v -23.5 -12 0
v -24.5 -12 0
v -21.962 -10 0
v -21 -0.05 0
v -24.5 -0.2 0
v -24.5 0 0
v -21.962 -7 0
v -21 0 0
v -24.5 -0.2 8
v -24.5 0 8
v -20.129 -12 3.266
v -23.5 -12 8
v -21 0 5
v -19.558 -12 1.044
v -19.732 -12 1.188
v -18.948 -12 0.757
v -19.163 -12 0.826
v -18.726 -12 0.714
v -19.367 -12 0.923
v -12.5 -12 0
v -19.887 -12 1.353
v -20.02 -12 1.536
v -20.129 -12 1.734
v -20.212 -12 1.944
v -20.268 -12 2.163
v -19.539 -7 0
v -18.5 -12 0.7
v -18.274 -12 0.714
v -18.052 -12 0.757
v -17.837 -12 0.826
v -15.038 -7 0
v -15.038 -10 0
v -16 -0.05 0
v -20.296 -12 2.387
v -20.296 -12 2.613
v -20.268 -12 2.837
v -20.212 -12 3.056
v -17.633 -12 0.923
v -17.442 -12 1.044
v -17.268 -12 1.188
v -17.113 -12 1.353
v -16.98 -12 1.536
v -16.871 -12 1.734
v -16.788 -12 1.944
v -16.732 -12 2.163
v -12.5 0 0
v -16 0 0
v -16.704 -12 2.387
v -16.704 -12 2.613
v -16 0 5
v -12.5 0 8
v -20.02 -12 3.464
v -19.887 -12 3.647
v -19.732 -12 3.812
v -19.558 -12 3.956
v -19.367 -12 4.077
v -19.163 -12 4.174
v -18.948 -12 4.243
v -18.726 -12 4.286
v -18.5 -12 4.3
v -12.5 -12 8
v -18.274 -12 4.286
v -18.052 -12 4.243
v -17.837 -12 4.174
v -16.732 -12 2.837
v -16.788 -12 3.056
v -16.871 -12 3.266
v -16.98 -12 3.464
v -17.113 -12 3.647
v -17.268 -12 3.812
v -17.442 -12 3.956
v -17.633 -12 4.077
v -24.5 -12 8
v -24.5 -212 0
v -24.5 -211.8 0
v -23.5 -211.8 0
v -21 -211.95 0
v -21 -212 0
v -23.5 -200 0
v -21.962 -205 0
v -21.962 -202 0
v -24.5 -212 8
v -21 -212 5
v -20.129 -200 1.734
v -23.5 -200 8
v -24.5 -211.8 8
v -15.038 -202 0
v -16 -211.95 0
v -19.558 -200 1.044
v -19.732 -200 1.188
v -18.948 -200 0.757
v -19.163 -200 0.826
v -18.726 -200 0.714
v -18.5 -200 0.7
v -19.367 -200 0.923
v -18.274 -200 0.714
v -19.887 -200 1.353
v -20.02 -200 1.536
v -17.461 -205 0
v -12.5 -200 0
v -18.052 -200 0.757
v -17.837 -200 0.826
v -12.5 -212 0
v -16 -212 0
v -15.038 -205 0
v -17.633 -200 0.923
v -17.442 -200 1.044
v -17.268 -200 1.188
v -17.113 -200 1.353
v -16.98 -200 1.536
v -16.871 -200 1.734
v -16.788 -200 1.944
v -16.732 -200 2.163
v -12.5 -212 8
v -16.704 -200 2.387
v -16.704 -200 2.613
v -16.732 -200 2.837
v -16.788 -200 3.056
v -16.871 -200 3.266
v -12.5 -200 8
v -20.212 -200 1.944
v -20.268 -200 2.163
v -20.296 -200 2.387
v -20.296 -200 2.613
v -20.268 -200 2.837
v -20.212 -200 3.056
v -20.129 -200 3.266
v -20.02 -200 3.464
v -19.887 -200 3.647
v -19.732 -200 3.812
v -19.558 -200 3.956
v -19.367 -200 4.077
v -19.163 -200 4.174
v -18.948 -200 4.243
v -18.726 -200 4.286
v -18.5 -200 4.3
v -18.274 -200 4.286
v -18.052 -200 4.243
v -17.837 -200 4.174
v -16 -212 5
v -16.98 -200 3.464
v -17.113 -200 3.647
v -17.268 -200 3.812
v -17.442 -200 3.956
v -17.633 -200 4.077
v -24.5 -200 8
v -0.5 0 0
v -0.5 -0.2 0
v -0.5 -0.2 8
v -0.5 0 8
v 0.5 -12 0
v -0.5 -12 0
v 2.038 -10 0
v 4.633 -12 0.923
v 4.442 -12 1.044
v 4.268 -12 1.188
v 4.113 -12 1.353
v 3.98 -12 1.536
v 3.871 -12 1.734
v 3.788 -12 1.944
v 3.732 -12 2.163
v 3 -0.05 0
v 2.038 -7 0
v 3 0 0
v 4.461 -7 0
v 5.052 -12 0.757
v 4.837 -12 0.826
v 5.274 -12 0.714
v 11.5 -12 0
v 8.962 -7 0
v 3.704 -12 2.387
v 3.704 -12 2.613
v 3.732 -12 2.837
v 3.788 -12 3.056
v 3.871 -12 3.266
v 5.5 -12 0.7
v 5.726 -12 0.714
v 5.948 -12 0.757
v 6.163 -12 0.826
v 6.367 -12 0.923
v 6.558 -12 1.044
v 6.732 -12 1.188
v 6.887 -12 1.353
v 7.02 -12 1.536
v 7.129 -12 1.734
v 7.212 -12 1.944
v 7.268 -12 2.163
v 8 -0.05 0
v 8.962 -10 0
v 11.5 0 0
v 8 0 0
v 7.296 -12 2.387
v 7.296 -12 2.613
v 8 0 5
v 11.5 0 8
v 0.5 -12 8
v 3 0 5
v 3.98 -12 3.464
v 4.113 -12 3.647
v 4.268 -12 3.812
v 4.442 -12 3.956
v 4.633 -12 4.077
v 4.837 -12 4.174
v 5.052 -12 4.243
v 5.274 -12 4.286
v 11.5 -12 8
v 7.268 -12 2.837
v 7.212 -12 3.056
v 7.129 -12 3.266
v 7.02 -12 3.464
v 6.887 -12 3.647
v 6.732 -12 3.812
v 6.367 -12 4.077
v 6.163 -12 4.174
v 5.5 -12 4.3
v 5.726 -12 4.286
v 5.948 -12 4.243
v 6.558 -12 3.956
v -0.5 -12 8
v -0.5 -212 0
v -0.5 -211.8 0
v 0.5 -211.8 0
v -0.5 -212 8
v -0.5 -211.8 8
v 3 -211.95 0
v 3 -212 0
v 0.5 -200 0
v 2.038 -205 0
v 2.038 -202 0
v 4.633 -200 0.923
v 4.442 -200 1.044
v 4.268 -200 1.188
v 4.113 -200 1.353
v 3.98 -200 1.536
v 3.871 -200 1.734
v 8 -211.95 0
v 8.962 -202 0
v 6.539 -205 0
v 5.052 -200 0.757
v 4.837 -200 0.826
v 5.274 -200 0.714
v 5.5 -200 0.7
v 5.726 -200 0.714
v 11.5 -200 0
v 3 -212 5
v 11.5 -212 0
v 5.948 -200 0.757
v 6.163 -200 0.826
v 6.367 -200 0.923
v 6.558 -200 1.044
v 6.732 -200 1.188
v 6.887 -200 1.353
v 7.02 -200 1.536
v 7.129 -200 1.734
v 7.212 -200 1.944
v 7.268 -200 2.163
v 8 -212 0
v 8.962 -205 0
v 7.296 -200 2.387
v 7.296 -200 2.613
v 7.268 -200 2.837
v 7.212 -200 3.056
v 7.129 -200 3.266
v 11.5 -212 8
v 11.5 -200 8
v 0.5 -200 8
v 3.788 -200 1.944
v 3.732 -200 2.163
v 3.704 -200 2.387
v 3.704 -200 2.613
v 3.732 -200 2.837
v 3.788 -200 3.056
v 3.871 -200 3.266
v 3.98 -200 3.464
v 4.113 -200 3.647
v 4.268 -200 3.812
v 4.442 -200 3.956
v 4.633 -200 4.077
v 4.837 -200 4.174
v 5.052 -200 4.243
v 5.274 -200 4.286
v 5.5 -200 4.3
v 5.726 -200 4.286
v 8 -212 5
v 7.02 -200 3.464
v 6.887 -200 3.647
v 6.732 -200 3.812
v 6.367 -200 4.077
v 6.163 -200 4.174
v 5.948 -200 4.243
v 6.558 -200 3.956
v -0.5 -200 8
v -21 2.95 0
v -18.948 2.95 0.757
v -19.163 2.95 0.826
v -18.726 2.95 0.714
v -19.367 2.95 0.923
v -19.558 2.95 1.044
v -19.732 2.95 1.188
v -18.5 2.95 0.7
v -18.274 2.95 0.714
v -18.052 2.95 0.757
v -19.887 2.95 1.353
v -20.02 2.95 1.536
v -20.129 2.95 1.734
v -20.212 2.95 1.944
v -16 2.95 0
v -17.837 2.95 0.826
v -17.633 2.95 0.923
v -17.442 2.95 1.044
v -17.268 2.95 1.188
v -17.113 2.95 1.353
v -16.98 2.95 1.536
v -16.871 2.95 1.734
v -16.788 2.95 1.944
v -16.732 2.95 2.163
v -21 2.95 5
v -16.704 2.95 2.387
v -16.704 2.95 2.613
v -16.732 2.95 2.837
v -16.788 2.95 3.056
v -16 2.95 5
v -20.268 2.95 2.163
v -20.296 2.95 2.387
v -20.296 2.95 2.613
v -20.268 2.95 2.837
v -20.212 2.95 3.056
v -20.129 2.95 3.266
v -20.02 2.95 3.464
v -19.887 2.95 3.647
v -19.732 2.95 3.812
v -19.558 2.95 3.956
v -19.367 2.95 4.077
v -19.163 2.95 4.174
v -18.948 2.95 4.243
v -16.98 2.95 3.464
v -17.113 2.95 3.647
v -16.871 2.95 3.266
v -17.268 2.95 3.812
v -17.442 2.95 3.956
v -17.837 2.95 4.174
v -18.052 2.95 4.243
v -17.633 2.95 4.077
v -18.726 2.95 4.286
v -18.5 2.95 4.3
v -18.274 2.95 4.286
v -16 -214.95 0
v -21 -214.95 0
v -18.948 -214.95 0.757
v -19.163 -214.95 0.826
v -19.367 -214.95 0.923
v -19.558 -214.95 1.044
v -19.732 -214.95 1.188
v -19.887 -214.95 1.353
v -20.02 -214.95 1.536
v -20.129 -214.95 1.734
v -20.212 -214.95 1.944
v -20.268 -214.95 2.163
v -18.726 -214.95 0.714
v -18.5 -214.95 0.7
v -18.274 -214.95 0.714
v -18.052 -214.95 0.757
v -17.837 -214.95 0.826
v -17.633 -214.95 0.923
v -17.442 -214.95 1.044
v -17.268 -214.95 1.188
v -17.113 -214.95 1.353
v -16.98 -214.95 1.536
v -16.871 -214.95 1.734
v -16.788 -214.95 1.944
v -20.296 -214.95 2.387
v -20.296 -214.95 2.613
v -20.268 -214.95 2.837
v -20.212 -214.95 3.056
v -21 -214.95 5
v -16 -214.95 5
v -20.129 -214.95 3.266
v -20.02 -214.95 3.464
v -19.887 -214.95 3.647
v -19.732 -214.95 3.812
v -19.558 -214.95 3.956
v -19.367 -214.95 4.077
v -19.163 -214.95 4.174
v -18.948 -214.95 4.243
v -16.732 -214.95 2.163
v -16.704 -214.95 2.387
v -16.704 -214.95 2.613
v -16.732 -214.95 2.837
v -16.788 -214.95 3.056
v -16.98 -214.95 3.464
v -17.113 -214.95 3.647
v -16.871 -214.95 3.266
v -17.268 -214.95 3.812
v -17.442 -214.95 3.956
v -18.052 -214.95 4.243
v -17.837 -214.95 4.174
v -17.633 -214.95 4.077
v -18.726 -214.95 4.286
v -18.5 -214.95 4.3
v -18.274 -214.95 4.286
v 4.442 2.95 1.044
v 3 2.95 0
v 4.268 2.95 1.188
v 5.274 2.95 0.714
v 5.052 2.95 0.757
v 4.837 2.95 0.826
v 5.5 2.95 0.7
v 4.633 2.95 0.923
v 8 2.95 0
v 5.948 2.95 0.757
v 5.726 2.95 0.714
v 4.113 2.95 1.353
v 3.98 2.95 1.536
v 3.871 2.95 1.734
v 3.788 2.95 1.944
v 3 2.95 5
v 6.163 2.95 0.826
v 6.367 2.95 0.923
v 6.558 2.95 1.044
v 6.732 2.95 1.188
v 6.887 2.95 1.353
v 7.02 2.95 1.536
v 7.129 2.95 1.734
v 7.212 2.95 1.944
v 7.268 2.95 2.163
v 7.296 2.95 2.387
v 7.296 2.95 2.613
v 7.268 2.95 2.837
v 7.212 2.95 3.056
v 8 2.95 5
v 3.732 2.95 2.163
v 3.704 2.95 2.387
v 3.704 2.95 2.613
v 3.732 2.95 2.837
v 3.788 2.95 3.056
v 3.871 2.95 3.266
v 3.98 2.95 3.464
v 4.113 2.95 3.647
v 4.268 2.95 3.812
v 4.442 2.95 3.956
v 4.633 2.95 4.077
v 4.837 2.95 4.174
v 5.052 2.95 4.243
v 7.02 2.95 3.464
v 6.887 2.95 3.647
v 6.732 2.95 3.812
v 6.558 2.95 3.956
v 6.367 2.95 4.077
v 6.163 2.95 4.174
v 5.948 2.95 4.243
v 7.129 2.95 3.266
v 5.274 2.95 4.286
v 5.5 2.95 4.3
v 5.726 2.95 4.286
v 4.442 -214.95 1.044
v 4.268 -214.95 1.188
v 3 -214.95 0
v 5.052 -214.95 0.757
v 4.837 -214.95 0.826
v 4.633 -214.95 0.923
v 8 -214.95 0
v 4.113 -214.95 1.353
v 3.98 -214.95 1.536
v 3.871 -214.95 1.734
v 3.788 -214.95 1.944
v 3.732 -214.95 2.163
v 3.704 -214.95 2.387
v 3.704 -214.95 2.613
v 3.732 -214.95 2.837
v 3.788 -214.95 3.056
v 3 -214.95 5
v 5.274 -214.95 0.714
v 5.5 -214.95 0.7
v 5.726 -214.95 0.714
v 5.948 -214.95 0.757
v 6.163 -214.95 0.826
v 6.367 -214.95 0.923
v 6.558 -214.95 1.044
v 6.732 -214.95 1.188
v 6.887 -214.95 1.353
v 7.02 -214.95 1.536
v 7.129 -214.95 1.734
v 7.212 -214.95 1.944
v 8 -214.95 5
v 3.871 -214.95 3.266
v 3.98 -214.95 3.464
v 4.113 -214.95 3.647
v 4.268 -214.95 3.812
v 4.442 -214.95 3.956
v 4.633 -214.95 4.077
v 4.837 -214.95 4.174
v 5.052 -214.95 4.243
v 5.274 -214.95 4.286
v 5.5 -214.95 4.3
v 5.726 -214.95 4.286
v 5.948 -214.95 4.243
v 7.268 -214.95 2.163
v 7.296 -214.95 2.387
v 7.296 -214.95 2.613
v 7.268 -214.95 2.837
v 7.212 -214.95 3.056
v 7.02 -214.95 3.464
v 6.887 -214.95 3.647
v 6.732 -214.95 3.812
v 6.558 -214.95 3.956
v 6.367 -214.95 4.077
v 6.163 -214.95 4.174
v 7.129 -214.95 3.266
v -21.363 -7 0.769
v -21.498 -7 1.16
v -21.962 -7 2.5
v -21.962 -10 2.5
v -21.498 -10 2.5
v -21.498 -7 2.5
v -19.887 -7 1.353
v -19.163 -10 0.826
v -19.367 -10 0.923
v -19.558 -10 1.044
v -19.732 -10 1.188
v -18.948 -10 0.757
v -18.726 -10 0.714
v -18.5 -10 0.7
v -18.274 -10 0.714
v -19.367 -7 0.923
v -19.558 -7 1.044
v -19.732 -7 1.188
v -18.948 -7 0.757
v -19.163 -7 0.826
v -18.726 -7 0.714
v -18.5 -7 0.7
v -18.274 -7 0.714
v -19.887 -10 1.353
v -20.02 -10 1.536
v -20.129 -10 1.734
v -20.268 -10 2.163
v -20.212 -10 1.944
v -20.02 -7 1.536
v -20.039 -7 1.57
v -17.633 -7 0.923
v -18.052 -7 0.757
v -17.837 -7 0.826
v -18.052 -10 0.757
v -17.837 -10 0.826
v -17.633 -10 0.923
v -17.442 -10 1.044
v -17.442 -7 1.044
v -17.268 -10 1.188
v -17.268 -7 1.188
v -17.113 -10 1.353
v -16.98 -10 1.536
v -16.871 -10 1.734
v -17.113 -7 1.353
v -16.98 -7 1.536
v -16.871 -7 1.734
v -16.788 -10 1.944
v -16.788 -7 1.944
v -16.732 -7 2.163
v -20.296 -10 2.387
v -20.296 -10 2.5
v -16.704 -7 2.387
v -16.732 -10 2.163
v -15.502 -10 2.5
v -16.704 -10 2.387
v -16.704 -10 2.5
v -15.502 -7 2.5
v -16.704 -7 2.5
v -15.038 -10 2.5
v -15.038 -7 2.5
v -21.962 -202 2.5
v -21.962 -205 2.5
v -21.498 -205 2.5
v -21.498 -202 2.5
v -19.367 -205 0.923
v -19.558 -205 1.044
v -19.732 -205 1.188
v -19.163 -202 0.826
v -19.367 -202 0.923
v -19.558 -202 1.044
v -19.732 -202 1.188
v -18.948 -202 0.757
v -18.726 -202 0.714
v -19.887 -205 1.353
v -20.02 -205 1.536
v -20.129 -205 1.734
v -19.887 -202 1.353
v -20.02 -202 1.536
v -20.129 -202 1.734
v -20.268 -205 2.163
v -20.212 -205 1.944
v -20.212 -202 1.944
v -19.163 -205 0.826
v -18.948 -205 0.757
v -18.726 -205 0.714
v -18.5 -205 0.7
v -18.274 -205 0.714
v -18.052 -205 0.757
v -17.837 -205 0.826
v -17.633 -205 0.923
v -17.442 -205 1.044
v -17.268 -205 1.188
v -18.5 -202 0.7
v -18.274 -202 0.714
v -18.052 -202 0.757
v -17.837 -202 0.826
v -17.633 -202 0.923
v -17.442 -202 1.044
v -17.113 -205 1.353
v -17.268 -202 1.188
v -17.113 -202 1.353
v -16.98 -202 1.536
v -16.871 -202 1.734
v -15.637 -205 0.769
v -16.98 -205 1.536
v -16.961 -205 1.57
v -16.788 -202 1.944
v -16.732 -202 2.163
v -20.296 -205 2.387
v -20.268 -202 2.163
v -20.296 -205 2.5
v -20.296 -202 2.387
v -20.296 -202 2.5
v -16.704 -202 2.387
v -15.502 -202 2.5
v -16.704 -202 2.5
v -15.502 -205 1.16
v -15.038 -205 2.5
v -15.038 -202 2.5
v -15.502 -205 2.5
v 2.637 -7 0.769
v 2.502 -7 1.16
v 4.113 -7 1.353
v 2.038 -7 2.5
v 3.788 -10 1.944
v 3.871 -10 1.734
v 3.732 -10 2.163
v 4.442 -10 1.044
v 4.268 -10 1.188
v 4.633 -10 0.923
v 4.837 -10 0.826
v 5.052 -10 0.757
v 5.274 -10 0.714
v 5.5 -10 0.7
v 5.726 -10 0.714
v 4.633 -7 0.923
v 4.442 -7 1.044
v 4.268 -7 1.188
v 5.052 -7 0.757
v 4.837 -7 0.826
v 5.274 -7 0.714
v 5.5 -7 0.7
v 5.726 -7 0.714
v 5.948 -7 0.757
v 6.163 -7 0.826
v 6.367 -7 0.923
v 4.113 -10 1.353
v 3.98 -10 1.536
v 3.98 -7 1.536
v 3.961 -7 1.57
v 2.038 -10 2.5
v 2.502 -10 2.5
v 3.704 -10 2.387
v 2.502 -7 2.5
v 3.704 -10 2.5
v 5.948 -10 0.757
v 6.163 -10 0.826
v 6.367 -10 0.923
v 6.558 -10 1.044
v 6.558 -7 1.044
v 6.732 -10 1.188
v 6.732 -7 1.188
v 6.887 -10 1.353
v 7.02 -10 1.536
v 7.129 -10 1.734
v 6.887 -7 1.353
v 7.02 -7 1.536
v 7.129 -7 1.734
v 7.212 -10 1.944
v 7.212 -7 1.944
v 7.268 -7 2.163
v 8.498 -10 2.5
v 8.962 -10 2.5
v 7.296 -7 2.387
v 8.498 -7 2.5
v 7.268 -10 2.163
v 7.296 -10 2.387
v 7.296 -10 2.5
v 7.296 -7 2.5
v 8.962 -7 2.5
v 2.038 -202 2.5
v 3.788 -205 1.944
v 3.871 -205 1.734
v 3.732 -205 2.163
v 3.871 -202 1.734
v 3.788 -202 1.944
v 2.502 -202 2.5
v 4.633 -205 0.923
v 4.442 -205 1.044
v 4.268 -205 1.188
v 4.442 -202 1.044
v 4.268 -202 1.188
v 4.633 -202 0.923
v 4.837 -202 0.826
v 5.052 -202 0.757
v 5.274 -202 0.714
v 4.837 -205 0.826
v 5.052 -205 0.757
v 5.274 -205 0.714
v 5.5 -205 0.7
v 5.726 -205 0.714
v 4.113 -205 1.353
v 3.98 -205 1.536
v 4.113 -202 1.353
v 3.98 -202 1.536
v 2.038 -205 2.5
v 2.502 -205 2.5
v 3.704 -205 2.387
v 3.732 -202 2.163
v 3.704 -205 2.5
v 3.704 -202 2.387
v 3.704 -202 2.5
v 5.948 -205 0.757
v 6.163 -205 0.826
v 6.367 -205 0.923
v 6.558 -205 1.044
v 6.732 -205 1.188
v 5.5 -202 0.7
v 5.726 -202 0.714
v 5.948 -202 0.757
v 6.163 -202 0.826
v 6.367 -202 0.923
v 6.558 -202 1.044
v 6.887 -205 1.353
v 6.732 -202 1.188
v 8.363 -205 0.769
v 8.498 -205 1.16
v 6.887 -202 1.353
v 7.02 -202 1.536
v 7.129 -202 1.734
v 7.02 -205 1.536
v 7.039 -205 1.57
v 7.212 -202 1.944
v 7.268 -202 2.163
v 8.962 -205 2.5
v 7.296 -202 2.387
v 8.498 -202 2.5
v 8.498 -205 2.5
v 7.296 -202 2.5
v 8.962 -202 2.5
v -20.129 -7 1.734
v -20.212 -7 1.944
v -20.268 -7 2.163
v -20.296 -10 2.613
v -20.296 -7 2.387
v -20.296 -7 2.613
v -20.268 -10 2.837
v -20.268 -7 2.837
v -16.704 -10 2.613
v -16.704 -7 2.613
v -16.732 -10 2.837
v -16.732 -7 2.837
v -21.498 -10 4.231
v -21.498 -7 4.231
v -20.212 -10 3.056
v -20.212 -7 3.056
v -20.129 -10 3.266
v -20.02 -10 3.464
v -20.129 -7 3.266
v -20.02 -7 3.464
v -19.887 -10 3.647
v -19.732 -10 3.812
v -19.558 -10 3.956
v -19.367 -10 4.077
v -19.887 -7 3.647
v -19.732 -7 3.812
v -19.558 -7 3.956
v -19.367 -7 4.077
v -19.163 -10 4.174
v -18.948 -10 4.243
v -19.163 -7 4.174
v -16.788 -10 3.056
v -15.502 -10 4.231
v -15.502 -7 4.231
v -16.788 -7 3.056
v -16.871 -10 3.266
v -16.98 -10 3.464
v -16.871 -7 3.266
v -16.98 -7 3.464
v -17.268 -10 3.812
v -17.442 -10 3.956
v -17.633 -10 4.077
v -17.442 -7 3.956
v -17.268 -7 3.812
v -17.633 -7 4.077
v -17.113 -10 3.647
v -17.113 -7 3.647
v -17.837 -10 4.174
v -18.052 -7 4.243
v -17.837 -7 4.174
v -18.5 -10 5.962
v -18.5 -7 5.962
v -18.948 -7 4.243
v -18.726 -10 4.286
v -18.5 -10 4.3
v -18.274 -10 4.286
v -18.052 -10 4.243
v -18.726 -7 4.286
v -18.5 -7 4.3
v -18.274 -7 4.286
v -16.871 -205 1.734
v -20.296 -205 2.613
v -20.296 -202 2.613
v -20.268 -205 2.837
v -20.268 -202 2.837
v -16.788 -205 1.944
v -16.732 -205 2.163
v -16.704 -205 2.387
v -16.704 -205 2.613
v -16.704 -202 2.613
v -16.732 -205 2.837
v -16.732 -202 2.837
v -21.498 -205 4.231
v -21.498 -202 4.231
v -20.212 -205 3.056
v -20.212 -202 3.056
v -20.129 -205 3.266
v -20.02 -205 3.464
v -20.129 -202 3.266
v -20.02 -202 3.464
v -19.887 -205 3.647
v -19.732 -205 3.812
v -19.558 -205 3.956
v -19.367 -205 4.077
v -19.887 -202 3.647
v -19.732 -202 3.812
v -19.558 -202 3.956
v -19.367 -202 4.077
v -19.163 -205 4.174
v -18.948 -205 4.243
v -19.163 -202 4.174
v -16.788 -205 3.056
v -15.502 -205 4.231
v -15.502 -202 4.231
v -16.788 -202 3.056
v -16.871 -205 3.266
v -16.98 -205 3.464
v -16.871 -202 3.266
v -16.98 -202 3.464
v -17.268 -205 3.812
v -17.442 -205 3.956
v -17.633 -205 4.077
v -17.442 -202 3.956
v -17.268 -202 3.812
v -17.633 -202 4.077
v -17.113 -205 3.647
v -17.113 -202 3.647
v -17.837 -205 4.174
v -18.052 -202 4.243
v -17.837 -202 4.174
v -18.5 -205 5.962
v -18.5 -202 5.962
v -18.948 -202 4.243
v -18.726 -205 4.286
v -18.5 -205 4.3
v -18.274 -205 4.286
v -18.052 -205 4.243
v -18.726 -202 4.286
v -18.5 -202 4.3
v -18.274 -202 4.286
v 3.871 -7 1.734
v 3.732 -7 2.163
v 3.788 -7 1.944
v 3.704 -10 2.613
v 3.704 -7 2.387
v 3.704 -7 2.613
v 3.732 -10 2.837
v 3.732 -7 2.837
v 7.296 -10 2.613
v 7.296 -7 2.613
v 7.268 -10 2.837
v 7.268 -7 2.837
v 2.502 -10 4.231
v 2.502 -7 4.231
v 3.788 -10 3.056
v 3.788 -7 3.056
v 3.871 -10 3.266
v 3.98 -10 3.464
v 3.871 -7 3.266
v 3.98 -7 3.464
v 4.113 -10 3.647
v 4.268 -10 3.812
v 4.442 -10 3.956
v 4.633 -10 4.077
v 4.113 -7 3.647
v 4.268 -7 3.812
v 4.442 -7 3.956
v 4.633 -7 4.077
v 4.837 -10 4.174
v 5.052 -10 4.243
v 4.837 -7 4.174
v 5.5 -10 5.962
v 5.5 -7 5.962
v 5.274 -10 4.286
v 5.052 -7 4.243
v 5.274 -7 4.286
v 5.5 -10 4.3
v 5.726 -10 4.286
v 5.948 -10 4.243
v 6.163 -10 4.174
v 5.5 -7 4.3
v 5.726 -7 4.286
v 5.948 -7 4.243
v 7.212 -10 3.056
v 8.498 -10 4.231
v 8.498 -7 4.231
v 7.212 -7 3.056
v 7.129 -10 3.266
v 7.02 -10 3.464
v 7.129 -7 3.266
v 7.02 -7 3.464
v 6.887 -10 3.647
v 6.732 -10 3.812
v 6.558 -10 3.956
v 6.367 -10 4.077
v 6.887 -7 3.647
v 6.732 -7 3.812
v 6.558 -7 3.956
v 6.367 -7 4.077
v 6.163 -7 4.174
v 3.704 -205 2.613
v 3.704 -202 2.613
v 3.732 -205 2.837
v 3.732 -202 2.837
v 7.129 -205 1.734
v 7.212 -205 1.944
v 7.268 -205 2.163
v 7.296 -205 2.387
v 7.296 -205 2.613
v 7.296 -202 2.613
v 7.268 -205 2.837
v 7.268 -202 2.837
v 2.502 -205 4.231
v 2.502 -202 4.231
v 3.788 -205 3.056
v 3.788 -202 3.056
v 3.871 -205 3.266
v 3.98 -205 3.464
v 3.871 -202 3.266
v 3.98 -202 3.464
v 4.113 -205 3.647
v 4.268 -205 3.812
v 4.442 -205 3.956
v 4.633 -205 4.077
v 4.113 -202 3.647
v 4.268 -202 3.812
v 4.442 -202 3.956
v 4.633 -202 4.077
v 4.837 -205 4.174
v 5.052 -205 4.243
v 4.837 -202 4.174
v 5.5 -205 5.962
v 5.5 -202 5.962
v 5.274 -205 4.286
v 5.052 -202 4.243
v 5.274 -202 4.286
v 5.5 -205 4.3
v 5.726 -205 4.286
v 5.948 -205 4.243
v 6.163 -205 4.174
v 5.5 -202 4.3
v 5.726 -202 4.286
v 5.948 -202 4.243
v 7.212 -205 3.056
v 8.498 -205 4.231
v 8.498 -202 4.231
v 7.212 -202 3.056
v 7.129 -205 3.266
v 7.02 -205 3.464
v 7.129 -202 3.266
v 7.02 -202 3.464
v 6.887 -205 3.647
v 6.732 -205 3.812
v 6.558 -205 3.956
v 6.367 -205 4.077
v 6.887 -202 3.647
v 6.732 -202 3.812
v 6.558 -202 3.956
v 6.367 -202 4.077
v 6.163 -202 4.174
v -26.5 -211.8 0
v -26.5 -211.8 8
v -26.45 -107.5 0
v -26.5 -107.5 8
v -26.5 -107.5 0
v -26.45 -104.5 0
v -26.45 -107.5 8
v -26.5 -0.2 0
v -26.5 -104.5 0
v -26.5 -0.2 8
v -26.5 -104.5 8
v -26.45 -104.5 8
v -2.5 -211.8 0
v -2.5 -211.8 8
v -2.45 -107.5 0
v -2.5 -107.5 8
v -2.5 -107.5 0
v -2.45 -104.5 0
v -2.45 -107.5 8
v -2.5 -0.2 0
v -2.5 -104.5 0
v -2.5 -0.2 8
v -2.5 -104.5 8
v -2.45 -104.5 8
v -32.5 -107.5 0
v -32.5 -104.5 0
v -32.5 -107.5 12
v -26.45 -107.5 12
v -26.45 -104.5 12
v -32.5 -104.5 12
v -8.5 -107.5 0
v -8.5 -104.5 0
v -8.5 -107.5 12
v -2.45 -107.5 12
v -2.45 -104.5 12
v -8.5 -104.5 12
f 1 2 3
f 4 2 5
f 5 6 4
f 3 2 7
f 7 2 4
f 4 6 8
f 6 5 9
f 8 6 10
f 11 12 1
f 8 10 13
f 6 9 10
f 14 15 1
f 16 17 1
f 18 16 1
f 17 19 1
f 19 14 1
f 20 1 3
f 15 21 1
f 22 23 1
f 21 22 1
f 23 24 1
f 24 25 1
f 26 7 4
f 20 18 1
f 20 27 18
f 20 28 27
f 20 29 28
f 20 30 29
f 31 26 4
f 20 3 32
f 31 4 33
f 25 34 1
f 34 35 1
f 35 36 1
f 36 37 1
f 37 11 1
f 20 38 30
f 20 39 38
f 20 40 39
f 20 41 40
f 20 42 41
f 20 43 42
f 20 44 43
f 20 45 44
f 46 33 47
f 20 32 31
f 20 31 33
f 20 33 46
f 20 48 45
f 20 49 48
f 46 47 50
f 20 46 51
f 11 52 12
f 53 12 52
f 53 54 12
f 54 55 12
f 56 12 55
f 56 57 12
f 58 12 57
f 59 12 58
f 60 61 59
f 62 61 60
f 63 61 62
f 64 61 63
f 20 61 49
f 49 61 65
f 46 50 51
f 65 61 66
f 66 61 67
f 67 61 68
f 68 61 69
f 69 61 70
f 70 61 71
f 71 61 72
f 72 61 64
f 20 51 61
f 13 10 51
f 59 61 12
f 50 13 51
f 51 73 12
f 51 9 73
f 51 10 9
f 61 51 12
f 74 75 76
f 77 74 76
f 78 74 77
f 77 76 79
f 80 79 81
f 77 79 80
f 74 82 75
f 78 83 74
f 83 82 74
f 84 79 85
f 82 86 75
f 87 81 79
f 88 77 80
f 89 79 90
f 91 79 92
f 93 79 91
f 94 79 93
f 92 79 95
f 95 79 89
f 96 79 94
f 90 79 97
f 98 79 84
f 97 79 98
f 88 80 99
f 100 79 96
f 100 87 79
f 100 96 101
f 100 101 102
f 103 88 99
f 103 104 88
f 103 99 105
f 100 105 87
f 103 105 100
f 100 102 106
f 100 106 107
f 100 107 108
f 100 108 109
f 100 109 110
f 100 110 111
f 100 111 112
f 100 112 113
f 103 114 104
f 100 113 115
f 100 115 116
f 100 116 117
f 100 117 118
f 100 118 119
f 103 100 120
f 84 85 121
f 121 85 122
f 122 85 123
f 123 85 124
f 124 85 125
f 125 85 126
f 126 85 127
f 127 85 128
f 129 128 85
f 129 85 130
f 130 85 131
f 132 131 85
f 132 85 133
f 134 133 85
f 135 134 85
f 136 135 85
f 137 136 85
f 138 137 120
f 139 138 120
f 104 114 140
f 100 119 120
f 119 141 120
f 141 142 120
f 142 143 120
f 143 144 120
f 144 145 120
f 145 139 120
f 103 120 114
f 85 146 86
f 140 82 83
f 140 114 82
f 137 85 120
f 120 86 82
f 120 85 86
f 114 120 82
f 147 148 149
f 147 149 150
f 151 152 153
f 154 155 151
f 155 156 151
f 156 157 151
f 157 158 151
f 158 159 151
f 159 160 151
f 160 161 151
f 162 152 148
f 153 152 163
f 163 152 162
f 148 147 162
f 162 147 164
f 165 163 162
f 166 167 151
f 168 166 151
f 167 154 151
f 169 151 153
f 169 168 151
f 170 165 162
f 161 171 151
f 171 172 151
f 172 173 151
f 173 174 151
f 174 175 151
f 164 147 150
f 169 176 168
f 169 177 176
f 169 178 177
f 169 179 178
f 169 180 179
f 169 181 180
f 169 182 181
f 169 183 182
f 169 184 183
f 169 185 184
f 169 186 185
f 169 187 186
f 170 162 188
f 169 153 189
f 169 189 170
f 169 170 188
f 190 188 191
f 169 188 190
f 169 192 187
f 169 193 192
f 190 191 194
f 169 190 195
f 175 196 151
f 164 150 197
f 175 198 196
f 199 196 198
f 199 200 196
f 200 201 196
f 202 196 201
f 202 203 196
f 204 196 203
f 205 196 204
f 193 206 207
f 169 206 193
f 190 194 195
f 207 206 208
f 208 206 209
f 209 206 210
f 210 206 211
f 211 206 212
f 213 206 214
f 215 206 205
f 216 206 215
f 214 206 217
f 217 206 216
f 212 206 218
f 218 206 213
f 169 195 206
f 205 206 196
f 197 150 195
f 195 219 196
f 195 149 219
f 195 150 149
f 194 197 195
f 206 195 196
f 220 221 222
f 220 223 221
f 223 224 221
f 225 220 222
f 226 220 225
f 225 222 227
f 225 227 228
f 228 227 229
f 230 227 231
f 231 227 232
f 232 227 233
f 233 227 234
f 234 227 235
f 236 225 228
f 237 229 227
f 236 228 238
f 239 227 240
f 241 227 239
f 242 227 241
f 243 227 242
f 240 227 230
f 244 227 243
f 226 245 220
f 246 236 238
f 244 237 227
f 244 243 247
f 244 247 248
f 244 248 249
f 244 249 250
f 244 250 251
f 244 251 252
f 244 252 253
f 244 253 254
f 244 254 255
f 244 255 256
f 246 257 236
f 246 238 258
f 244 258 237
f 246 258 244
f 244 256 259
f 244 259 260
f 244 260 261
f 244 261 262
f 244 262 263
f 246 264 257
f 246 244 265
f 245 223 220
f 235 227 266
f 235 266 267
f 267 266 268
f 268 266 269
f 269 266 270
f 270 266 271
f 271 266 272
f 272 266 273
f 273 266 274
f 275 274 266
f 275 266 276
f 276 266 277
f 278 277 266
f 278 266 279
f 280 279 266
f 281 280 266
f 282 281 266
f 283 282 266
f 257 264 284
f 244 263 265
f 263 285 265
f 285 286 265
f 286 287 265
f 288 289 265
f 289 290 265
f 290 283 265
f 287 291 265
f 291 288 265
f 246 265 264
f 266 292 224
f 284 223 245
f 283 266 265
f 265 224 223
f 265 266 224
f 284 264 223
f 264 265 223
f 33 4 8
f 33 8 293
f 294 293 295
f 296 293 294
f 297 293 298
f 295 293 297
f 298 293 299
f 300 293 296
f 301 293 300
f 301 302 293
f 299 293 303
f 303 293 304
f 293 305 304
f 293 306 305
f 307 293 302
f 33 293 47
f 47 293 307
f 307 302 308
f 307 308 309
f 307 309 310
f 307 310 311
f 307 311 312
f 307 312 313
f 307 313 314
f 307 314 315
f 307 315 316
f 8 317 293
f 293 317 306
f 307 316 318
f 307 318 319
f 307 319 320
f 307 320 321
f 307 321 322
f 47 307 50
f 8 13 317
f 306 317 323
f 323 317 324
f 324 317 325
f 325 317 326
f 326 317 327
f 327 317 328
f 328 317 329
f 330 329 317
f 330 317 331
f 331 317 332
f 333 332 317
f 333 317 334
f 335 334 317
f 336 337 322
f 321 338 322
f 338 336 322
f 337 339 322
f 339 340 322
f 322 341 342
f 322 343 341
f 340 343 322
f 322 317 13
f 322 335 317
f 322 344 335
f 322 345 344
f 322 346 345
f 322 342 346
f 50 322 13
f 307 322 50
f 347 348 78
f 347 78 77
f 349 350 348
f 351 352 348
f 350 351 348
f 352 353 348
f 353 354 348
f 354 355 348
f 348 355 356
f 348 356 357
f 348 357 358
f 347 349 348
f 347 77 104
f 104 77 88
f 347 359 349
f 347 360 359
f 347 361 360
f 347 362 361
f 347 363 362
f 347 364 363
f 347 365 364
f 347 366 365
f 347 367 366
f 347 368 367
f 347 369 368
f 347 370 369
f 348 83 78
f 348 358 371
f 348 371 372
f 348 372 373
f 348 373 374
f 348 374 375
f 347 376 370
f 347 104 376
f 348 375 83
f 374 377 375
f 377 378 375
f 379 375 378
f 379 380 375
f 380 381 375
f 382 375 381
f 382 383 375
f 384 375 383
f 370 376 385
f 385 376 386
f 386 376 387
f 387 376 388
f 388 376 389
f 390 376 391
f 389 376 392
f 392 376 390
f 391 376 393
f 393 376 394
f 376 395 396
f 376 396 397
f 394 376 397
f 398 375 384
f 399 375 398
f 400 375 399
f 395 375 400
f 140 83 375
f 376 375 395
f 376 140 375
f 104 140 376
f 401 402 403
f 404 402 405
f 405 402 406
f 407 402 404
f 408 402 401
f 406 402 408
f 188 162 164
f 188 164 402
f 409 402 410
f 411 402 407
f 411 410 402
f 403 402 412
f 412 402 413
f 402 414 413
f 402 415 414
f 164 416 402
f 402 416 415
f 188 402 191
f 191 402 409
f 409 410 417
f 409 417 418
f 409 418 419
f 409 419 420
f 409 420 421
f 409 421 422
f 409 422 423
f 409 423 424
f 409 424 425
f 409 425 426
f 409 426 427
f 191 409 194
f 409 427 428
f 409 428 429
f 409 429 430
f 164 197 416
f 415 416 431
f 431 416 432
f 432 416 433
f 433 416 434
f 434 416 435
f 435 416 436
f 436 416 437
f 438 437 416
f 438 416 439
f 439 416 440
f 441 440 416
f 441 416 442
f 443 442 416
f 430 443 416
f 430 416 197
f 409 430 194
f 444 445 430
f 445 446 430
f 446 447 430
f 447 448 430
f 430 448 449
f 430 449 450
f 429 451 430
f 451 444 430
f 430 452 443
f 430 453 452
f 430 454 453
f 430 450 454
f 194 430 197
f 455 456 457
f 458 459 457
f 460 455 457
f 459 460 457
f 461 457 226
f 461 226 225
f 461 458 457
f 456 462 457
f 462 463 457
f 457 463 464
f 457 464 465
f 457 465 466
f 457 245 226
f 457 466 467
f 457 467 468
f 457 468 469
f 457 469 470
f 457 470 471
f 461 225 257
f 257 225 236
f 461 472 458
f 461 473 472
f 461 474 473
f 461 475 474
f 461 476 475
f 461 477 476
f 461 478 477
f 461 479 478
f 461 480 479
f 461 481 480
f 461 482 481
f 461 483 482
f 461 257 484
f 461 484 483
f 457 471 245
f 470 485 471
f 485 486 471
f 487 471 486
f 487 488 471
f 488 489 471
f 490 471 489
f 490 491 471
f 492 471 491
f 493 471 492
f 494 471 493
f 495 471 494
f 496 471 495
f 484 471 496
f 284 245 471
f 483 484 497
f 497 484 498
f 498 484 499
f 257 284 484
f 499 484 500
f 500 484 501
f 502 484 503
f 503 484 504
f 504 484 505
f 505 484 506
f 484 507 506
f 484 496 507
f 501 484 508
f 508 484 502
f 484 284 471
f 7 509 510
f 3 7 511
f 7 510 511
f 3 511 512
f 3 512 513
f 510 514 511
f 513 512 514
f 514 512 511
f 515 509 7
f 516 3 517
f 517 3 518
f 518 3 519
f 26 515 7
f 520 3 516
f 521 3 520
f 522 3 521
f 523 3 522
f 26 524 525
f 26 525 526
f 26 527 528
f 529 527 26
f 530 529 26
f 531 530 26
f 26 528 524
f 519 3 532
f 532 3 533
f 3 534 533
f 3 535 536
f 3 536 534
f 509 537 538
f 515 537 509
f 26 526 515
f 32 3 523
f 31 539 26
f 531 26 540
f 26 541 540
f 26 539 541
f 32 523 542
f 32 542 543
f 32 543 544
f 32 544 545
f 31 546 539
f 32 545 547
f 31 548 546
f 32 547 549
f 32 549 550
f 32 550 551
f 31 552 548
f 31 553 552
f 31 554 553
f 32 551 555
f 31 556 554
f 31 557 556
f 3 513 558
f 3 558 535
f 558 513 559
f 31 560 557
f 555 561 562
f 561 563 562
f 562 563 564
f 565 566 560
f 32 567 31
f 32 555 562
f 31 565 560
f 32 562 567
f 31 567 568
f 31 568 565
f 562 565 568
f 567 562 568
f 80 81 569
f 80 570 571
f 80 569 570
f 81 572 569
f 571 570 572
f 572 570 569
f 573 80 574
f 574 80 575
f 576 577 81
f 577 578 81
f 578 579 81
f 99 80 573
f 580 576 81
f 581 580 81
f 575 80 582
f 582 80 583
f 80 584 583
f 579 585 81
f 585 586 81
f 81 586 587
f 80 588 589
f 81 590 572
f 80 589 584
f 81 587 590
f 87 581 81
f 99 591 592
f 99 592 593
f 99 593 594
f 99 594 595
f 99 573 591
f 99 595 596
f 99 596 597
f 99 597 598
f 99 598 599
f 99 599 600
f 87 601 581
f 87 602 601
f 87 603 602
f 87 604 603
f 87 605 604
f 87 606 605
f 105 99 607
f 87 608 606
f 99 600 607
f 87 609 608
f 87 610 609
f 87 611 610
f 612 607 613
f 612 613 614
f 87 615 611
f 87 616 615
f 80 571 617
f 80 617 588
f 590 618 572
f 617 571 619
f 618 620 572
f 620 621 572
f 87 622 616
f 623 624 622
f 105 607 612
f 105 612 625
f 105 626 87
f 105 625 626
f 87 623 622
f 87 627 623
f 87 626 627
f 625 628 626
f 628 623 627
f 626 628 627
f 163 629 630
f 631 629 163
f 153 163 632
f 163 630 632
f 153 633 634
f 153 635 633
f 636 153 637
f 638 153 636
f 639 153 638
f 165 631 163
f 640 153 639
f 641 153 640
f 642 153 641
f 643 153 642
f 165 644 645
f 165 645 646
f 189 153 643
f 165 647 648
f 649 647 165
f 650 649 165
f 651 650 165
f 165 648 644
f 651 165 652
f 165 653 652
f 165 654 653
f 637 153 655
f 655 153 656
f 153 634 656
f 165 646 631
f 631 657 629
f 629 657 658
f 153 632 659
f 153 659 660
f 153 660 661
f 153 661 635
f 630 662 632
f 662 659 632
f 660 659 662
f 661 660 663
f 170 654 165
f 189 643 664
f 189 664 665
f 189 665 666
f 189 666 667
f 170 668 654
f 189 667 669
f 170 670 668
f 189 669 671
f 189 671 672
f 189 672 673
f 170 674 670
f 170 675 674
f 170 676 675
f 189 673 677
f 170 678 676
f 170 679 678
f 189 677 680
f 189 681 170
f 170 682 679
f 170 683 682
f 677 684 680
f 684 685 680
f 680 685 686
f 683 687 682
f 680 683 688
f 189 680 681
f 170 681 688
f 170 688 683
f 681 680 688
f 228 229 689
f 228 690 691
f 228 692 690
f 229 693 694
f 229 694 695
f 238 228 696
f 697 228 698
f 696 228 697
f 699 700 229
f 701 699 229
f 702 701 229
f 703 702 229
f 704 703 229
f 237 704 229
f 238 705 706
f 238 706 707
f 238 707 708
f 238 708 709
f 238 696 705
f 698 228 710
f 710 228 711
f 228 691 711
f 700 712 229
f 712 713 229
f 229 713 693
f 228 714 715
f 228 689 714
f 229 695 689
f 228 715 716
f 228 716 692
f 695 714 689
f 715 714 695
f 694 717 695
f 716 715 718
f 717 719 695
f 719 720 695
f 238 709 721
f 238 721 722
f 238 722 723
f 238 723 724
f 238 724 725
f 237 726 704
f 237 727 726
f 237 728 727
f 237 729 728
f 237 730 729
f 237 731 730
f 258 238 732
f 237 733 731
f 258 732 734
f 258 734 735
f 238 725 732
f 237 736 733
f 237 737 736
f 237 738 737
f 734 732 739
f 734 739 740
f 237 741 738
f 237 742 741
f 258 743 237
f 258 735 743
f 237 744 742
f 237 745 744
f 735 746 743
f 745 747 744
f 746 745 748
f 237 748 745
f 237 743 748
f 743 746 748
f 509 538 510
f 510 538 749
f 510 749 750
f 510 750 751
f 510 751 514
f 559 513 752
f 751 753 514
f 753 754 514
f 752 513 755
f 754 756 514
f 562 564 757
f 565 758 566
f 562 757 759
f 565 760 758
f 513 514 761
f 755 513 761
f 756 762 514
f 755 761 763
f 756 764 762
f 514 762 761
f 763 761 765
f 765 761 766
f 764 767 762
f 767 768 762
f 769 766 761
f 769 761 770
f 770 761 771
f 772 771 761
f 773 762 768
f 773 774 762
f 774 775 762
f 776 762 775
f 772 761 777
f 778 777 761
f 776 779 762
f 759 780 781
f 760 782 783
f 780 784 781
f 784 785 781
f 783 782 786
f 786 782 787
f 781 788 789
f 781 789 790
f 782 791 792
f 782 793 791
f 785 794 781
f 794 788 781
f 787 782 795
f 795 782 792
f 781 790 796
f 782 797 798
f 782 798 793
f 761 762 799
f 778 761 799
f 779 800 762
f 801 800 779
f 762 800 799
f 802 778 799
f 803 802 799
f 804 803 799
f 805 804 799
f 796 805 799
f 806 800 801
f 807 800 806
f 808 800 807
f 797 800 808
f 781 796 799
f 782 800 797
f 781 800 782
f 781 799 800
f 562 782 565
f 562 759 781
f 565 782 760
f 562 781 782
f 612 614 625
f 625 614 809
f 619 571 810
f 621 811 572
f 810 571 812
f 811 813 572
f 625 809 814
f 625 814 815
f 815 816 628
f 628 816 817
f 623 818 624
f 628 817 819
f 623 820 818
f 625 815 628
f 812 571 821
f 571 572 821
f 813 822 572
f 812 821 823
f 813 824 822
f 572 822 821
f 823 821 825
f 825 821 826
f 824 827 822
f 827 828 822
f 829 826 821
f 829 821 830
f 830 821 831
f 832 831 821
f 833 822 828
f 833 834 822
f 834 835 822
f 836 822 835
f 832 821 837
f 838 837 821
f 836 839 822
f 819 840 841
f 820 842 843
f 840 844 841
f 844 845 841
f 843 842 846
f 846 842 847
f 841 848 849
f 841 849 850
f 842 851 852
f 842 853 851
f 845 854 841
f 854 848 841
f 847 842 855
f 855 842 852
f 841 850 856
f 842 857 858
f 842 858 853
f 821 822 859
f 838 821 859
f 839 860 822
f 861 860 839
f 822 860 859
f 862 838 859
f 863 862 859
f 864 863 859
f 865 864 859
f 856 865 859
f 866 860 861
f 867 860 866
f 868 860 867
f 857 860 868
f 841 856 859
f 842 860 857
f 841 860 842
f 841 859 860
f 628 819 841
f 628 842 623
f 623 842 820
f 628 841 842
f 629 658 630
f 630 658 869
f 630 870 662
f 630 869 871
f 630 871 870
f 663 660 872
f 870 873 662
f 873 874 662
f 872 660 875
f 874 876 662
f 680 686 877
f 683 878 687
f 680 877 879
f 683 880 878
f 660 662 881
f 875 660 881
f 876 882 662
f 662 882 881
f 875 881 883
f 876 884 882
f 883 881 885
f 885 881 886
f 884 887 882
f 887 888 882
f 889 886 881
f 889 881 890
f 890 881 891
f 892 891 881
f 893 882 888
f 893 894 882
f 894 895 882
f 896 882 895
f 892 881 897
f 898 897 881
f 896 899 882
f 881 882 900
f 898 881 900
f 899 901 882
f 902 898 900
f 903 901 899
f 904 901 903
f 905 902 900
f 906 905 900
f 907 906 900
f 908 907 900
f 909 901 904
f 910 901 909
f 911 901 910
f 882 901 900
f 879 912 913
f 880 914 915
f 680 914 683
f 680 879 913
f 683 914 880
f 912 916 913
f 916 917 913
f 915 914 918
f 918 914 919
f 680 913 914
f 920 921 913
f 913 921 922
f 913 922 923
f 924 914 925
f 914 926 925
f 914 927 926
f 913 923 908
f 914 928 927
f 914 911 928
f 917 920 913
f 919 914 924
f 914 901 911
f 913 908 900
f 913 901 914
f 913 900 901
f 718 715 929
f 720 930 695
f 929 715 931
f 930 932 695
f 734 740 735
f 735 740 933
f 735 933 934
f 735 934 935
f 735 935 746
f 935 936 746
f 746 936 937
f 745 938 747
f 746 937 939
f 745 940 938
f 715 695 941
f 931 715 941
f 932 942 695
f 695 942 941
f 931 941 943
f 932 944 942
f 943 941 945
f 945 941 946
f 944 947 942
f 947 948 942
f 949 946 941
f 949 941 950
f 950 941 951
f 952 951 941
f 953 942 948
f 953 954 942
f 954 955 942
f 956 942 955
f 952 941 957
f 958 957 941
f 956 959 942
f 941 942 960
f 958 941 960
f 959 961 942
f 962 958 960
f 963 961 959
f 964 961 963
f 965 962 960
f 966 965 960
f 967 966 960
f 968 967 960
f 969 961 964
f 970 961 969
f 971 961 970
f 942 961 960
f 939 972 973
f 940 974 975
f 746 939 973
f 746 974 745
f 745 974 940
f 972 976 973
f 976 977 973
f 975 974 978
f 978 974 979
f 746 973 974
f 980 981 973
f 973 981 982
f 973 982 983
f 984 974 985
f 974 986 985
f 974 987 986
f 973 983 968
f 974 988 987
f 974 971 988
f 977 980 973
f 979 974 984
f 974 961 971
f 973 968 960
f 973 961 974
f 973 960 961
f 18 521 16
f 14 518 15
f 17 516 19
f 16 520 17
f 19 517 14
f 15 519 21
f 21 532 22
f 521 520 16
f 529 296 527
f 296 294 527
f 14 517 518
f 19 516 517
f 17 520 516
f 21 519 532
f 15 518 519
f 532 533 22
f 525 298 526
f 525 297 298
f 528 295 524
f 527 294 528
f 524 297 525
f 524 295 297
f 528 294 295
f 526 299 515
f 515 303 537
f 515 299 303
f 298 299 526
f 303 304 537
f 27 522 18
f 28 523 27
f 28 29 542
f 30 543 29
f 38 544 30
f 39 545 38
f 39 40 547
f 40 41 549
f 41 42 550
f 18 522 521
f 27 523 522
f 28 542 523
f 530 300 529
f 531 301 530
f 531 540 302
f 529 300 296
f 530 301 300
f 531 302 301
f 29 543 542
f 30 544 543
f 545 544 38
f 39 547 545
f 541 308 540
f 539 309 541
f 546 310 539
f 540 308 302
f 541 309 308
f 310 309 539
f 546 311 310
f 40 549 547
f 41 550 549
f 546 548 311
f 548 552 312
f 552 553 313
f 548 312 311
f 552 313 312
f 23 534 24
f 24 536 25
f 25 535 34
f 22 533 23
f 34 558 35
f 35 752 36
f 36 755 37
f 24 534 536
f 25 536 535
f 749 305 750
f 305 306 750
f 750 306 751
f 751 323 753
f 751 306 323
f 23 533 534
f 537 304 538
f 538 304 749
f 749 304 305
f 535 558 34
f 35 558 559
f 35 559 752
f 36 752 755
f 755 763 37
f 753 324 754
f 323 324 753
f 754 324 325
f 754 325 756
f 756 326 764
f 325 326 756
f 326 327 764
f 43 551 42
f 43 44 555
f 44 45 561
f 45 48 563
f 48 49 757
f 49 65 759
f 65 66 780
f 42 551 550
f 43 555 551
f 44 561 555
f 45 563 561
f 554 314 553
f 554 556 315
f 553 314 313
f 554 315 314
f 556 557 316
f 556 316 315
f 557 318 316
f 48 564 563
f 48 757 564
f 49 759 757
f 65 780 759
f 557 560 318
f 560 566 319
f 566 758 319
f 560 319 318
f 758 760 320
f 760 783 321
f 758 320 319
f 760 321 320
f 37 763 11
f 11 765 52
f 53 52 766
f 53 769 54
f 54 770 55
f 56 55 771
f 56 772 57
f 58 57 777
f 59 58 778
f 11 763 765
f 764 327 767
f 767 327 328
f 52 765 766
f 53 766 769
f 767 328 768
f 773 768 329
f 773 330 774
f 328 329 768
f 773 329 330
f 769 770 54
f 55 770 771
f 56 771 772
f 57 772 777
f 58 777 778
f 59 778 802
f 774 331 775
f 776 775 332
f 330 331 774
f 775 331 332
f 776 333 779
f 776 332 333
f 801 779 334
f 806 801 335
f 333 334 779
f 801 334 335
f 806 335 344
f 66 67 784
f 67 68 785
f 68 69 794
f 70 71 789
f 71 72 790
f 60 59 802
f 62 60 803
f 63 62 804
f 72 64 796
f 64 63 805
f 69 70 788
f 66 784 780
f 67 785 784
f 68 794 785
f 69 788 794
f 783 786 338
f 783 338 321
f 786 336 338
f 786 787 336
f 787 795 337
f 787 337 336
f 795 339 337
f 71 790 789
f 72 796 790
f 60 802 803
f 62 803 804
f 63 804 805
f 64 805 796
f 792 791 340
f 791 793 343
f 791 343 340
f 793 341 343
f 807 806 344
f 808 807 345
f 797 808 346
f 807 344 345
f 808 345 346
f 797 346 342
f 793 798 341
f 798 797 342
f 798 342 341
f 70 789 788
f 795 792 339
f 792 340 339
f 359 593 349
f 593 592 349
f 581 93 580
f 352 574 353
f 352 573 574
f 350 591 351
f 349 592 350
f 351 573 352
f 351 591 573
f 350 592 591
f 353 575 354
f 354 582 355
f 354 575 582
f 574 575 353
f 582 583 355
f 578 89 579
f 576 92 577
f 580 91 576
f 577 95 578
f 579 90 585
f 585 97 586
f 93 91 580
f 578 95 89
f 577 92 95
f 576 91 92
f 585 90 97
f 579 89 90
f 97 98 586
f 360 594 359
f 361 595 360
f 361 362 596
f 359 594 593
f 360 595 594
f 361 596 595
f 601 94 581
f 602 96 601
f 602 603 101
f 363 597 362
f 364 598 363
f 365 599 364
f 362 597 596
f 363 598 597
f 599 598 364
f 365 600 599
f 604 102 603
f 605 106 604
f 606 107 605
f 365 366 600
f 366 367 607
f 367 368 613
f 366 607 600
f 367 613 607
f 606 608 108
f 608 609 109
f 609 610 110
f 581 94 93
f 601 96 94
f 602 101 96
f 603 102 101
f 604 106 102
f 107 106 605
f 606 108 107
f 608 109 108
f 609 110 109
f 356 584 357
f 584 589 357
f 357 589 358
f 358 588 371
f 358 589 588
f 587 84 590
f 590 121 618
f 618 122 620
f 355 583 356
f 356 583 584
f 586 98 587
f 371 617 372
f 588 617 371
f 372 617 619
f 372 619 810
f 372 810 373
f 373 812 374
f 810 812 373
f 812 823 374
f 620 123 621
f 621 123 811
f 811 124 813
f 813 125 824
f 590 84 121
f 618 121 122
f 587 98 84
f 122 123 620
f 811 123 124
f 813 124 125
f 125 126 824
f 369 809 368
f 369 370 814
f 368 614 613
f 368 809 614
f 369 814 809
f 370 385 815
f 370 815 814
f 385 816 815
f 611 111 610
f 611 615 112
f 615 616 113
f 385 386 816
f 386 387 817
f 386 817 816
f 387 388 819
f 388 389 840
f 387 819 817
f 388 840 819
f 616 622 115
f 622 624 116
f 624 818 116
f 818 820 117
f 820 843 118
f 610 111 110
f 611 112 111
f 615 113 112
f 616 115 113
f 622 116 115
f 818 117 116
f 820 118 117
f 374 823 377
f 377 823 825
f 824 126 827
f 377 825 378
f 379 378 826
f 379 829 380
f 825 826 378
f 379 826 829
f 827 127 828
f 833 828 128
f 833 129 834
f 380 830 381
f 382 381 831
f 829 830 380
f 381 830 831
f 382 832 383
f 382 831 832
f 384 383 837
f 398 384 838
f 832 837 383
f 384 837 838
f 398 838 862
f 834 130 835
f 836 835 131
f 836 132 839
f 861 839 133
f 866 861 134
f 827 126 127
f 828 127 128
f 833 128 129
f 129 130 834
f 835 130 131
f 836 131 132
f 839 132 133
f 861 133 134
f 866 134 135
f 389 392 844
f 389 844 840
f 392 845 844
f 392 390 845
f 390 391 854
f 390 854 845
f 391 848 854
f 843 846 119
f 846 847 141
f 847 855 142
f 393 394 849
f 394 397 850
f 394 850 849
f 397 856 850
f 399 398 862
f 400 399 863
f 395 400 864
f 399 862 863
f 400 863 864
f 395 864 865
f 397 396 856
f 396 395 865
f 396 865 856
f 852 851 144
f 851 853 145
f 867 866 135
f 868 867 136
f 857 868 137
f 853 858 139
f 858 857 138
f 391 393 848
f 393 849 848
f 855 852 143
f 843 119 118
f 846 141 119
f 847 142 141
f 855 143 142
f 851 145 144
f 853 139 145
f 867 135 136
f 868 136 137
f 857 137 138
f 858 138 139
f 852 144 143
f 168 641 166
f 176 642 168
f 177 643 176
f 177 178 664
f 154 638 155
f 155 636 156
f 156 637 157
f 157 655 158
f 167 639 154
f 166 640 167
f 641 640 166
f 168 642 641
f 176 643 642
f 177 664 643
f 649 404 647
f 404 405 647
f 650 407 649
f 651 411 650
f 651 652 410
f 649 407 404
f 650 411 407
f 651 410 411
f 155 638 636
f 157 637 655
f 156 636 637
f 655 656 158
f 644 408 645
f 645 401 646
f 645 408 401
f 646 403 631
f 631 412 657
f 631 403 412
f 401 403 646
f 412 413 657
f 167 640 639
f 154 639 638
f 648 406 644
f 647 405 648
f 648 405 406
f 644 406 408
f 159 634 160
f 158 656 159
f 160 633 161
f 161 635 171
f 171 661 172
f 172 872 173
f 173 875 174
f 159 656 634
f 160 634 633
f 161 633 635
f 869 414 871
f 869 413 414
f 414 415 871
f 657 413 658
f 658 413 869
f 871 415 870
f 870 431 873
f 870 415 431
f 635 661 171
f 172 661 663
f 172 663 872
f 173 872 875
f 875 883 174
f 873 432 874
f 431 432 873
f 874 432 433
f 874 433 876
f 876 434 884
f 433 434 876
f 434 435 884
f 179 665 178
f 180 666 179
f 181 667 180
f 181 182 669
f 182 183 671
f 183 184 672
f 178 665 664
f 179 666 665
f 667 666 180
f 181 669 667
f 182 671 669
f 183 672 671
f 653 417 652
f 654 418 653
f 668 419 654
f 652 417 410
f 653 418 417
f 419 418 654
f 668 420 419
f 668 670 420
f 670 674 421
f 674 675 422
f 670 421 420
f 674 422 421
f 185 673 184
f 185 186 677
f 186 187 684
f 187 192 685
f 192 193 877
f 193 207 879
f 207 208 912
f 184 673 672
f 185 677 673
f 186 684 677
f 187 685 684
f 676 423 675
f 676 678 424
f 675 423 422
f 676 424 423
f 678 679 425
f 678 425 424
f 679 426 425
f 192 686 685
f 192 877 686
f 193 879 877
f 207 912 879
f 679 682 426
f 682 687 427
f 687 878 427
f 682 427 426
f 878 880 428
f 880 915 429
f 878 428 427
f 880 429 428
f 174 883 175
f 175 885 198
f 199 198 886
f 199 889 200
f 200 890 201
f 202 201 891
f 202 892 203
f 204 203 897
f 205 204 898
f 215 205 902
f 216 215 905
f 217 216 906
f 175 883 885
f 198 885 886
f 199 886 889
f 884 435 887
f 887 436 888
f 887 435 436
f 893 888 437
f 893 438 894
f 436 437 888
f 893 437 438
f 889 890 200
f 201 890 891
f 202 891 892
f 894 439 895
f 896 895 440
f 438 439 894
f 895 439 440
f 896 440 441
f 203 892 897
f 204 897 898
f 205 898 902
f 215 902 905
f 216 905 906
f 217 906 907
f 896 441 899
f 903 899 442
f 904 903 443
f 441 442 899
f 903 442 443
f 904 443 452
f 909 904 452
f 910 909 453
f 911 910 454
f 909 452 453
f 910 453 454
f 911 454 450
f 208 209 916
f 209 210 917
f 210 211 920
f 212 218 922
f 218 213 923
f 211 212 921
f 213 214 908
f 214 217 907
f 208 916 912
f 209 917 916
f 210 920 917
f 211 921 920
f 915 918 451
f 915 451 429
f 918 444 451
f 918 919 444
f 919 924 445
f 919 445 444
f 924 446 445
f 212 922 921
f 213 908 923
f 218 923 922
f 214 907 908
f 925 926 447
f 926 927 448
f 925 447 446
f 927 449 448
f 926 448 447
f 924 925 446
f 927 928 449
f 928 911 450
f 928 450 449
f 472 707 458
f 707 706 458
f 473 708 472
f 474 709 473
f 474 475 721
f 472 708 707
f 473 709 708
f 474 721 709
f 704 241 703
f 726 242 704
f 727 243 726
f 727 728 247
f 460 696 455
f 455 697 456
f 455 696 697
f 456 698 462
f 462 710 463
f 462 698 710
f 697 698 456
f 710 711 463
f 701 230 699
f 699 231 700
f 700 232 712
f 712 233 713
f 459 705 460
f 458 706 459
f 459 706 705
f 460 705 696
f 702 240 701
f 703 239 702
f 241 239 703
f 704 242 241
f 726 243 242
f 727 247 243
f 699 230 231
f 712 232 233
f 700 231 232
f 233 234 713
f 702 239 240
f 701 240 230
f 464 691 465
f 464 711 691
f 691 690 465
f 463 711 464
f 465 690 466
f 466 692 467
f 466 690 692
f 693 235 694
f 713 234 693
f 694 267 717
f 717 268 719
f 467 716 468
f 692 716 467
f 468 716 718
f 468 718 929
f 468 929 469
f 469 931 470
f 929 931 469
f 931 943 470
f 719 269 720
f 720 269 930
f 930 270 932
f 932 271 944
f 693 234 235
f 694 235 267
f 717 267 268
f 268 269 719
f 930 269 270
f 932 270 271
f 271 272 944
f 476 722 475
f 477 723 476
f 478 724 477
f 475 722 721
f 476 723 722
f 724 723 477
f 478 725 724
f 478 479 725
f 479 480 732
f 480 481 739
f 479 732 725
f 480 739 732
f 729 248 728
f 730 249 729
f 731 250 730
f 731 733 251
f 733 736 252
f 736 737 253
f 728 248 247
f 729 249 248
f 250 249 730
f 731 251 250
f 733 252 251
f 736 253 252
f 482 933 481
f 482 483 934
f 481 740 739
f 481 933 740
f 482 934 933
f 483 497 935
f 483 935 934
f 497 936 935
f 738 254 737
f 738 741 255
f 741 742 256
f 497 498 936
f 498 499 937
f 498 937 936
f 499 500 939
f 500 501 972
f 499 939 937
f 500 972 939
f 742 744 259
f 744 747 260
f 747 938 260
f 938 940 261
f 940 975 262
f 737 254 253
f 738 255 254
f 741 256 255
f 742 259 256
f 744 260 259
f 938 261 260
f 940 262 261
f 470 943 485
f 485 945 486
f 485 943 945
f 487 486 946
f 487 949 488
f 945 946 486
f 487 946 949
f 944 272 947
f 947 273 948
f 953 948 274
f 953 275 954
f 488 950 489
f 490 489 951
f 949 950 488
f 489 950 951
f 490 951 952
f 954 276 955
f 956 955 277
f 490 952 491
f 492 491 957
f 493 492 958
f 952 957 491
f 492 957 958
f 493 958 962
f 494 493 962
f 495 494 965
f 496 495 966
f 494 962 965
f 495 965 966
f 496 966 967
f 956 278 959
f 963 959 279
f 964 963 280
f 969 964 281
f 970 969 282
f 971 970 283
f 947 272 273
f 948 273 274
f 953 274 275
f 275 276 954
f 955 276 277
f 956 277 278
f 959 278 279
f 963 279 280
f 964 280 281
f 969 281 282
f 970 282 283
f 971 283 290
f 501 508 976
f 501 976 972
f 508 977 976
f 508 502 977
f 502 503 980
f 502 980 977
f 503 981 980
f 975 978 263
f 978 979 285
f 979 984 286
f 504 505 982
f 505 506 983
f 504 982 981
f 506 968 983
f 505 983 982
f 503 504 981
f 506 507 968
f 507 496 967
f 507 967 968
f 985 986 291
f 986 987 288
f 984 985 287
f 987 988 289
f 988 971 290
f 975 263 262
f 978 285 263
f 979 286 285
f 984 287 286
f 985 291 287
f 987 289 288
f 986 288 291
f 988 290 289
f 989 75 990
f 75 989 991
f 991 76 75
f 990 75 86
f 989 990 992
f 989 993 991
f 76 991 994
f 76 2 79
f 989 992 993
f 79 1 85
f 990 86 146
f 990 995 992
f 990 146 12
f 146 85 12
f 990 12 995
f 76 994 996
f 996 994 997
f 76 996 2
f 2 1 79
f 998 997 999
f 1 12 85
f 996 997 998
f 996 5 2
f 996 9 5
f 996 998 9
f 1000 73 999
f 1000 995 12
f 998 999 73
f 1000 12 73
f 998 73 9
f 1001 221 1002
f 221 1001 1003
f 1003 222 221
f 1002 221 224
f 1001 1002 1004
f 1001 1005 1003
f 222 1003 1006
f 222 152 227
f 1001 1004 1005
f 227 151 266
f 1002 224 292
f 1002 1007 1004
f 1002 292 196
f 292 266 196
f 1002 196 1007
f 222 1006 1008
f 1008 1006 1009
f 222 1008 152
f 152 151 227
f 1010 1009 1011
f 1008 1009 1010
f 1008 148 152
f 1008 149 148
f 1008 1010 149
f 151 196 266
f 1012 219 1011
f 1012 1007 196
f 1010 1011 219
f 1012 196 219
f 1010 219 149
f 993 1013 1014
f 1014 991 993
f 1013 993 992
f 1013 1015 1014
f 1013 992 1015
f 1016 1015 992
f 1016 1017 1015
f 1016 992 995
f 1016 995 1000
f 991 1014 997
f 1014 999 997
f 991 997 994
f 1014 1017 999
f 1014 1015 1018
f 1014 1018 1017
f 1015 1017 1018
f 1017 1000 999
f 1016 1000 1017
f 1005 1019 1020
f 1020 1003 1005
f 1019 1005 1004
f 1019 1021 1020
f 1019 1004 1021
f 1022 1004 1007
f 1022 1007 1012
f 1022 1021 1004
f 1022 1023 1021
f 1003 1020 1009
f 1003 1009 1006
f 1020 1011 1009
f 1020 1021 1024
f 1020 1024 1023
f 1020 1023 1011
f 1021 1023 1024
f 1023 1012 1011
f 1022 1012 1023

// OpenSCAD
$fn = 50;

difference() {
	union() {
		translate(v = [-12.0, 0, 0]) {
			rotate(a = [0, 0, 0]) {
				difference() {
					union() {
						translate(v = [0, 0, 2.5]) {
							rotate(a = [0, -90, 0]) {
								difference() {
									union() {
										translate(v = [0, 0, 0]) {
											rotate(a = [0, 0, 0]) {
												difference() {
													union() {
														translate(v = [-2.5, -12.0, 0.5]) {
															cube(size = [8.0, 12.0, 12.0]);
														}
														translate(v = [-2.5, -0.05, 4.0]) {
															cube(size = [5.0, 3.0, 5.0]);
														}
													}
													union() {
														translate(v = [0, -7.0, 6.5]) {
															rotate(a = [90, 0, 0]) {
																difference() {
																	union() {
																		translate(v = [-20.0, -3.4619999999999997, 0]) {
																			cube(size = [20, 6.9239999999999995, 3]);
																		}
																		linear_extrude(height = 3) {
																			polygon(points = [[3.4619999999999997, 0.0], [1.7310000000000003, 2.9981799479017264], [-1.7309999999999992, 2.9981799479017264], [-3.4619999999999997, 4.2397272186481365e-16], [-1.7310000000000014, -2.998179947901726], [1.7309999999999977, -2.9981799479017277]]);
																		}
																	}
																	union();
																}
															}
														}
														translate(v = [0, 3.0500000000000003, 6.5]) {
															rotate(a = [90, 0, 0]) {
																cylinder(h = 22.95, r = 1.8);
															}
														}
													}
												}
											}
										}
										translate(v = [0, -212.0, 13.0]) {
											rotate(a = [180, 0, 0]) {
												difference() {
													union() {
														translate(v = [-2.5, -12.0, 0.5]) {
															cube(size = [8.0, 12.0, 12.0]);
														}
														translate(v = [-2.5, -0.05, 4.0]) {
															cube(size = [5.0, 3.0, 5.0]);
														}
													}
													union() {
														translate(v = [0, -7.0, 6.5]) {
															rotate(a = [90, 0, 0]) {
																difference() {
																	union() {
																		translate(v = [-20.0, -3.4619999999999997, 0]) {
																			cube(size = [20, 6.9239999999999995, 3]);
																		}
																		linear_extrude(height = 3) {
																			polygon(points = [[3.4619999999999997, 0.0], [1.7310000000000003, 2.9981799479017264], [-1.7309999999999992, 2.9981799479017264], [-3.4619999999999997, 4.2397272186481365e-16], [-1.7310000000000014, -2.998179947901726], [1.7309999999999977, -2.9981799479017277]]);
																		}
																	}
																	union();
																}
															}
														}
														translate(v = [0, 3.0500000000000003, 6.5]) {
															rotate(a = [90, 0, 0]) {
																cylinder(h = 22.95, r = 1.8);
															}
														}
													}
												}
											}
										}
										translate(v = [-2.5, -211.8, 11.5]) {
											cube(size = [8.0, 211.6, 3.0]);
										}
										translate(v = [-2.5, -107.5, 14.45]) {
											cube(size = [12.0, 3.0, 6.05]);
										}
									}
									union();
								}
							}
						}
					}
					union();
				}
			}
		}
		translate(v = [12.0, 0, 0]) {
			rotate(a = [0, 0, 0]) {
				difference() {
					union() {
						translate(v = [0, 0, 2.5]) {
							rotate(a = [0, -90, 0]) {
								difference() {
									union() {
										translate(v = [0, 0, 0]) {
											rotate(a = [0, 0, 0]) {
												difference() {
													union() {
														translate(v = [-2.5, -12.0, 0.5]) {
															cube(size = [8.0, 12.0, 12.0]);
														}
														translate(v = [-2.5, -0.05, 4.0]) {
															cube(size = [5.0, 3.0, 5.0]);
														}
													}
													union() {
														translate(v = [0, -7.0, 6.5]) {
															rotate(a = [90, 0, 0]) {
																difference() {
																	union() {
																		translate(v = [-20.0, -3.4619999999999997, 0]) {
																			cube(size = [20, 6.9239999999999995, 3]);
																		}
																		linear_extrude(height = 3) {
																			polygon(points = [[3.4619999999999997, 0.0], [1.7310000000000003, 2.9981799479017264], [-1.7309999999999992, 2.9981799479017264], [-3.4619999999999997, 4.2397272186481365e-16], [-1.7310000000000014, -2.998179947901726], [1.7309999999999977, -2.9981799479017277]]);
																		}
																	}
																	union();
																}
															}
														}
														translate(v = [0, 3.0500000000000003, 6.5]) {
															rotate(a = [90, 0, 0]) {
																cylinder(h = 22.95, r = 1.8);
															}
														}
													}
												}
											}
										}
										translate(v = [0, -212.0, 13.0]) {
											rotate(a = [180, 0, 0]) {
												difference() {
													union() {
														translate(v = [-2.5, -12.0, 0.5]) {
															cube(size = [8.0, 12.0, 12.0]);
														}
														translate(v = [-2.5, -0.05, 4.0]) {
															cube(size = [5.0, 3.0, 5.0]);
														}
													}
													union() {
														translate(v = [0, -7.0, 6.5]) {
															rotate(a = [90, 0, 0]) {
																difference() {
																	union() {
																		translate(v = [-20.0, -3.4619999999999997, 0]) {
																			cube(size = [20, 6.9239999999999995, 3]);
																		}
																		linear_extrude(height = 3) {
																			polygon(points = [[3.4619999999999997, 0.0], [1.7310000000000003, 2.9981799479017264], [-1.7309999999999992, 2.9981799479017264], [-3.4619999999999997, 4.2397272186481365e-16], [-1.7310000000000014, -2.998179947901726], [1.7309999999999977, -2.9981799479017277]]);
																		}
																	}
																	union();
																}
															}
														}
														translate(v = [0, 3.0500000000000003, 6.5]) {
															rotate(a = [90, 0, 0]) {
																cylinder(h = 22.95, r = 1.8);
															}
														}
													}
												}
											}
										}
										translate(v = [-2.5, -211.8, 11.5]) {
											cube(size = [8.0, 211.6, 3.0]);
										}
										translate(v = [-2.5, -107.5, 14.45]) {
											cube(size = [12.0, 3.0, 6.05]);
										}
									}
									union();
								}
							}
						}
					}
					union();
				}
			}
		}
	}
	union();
}
